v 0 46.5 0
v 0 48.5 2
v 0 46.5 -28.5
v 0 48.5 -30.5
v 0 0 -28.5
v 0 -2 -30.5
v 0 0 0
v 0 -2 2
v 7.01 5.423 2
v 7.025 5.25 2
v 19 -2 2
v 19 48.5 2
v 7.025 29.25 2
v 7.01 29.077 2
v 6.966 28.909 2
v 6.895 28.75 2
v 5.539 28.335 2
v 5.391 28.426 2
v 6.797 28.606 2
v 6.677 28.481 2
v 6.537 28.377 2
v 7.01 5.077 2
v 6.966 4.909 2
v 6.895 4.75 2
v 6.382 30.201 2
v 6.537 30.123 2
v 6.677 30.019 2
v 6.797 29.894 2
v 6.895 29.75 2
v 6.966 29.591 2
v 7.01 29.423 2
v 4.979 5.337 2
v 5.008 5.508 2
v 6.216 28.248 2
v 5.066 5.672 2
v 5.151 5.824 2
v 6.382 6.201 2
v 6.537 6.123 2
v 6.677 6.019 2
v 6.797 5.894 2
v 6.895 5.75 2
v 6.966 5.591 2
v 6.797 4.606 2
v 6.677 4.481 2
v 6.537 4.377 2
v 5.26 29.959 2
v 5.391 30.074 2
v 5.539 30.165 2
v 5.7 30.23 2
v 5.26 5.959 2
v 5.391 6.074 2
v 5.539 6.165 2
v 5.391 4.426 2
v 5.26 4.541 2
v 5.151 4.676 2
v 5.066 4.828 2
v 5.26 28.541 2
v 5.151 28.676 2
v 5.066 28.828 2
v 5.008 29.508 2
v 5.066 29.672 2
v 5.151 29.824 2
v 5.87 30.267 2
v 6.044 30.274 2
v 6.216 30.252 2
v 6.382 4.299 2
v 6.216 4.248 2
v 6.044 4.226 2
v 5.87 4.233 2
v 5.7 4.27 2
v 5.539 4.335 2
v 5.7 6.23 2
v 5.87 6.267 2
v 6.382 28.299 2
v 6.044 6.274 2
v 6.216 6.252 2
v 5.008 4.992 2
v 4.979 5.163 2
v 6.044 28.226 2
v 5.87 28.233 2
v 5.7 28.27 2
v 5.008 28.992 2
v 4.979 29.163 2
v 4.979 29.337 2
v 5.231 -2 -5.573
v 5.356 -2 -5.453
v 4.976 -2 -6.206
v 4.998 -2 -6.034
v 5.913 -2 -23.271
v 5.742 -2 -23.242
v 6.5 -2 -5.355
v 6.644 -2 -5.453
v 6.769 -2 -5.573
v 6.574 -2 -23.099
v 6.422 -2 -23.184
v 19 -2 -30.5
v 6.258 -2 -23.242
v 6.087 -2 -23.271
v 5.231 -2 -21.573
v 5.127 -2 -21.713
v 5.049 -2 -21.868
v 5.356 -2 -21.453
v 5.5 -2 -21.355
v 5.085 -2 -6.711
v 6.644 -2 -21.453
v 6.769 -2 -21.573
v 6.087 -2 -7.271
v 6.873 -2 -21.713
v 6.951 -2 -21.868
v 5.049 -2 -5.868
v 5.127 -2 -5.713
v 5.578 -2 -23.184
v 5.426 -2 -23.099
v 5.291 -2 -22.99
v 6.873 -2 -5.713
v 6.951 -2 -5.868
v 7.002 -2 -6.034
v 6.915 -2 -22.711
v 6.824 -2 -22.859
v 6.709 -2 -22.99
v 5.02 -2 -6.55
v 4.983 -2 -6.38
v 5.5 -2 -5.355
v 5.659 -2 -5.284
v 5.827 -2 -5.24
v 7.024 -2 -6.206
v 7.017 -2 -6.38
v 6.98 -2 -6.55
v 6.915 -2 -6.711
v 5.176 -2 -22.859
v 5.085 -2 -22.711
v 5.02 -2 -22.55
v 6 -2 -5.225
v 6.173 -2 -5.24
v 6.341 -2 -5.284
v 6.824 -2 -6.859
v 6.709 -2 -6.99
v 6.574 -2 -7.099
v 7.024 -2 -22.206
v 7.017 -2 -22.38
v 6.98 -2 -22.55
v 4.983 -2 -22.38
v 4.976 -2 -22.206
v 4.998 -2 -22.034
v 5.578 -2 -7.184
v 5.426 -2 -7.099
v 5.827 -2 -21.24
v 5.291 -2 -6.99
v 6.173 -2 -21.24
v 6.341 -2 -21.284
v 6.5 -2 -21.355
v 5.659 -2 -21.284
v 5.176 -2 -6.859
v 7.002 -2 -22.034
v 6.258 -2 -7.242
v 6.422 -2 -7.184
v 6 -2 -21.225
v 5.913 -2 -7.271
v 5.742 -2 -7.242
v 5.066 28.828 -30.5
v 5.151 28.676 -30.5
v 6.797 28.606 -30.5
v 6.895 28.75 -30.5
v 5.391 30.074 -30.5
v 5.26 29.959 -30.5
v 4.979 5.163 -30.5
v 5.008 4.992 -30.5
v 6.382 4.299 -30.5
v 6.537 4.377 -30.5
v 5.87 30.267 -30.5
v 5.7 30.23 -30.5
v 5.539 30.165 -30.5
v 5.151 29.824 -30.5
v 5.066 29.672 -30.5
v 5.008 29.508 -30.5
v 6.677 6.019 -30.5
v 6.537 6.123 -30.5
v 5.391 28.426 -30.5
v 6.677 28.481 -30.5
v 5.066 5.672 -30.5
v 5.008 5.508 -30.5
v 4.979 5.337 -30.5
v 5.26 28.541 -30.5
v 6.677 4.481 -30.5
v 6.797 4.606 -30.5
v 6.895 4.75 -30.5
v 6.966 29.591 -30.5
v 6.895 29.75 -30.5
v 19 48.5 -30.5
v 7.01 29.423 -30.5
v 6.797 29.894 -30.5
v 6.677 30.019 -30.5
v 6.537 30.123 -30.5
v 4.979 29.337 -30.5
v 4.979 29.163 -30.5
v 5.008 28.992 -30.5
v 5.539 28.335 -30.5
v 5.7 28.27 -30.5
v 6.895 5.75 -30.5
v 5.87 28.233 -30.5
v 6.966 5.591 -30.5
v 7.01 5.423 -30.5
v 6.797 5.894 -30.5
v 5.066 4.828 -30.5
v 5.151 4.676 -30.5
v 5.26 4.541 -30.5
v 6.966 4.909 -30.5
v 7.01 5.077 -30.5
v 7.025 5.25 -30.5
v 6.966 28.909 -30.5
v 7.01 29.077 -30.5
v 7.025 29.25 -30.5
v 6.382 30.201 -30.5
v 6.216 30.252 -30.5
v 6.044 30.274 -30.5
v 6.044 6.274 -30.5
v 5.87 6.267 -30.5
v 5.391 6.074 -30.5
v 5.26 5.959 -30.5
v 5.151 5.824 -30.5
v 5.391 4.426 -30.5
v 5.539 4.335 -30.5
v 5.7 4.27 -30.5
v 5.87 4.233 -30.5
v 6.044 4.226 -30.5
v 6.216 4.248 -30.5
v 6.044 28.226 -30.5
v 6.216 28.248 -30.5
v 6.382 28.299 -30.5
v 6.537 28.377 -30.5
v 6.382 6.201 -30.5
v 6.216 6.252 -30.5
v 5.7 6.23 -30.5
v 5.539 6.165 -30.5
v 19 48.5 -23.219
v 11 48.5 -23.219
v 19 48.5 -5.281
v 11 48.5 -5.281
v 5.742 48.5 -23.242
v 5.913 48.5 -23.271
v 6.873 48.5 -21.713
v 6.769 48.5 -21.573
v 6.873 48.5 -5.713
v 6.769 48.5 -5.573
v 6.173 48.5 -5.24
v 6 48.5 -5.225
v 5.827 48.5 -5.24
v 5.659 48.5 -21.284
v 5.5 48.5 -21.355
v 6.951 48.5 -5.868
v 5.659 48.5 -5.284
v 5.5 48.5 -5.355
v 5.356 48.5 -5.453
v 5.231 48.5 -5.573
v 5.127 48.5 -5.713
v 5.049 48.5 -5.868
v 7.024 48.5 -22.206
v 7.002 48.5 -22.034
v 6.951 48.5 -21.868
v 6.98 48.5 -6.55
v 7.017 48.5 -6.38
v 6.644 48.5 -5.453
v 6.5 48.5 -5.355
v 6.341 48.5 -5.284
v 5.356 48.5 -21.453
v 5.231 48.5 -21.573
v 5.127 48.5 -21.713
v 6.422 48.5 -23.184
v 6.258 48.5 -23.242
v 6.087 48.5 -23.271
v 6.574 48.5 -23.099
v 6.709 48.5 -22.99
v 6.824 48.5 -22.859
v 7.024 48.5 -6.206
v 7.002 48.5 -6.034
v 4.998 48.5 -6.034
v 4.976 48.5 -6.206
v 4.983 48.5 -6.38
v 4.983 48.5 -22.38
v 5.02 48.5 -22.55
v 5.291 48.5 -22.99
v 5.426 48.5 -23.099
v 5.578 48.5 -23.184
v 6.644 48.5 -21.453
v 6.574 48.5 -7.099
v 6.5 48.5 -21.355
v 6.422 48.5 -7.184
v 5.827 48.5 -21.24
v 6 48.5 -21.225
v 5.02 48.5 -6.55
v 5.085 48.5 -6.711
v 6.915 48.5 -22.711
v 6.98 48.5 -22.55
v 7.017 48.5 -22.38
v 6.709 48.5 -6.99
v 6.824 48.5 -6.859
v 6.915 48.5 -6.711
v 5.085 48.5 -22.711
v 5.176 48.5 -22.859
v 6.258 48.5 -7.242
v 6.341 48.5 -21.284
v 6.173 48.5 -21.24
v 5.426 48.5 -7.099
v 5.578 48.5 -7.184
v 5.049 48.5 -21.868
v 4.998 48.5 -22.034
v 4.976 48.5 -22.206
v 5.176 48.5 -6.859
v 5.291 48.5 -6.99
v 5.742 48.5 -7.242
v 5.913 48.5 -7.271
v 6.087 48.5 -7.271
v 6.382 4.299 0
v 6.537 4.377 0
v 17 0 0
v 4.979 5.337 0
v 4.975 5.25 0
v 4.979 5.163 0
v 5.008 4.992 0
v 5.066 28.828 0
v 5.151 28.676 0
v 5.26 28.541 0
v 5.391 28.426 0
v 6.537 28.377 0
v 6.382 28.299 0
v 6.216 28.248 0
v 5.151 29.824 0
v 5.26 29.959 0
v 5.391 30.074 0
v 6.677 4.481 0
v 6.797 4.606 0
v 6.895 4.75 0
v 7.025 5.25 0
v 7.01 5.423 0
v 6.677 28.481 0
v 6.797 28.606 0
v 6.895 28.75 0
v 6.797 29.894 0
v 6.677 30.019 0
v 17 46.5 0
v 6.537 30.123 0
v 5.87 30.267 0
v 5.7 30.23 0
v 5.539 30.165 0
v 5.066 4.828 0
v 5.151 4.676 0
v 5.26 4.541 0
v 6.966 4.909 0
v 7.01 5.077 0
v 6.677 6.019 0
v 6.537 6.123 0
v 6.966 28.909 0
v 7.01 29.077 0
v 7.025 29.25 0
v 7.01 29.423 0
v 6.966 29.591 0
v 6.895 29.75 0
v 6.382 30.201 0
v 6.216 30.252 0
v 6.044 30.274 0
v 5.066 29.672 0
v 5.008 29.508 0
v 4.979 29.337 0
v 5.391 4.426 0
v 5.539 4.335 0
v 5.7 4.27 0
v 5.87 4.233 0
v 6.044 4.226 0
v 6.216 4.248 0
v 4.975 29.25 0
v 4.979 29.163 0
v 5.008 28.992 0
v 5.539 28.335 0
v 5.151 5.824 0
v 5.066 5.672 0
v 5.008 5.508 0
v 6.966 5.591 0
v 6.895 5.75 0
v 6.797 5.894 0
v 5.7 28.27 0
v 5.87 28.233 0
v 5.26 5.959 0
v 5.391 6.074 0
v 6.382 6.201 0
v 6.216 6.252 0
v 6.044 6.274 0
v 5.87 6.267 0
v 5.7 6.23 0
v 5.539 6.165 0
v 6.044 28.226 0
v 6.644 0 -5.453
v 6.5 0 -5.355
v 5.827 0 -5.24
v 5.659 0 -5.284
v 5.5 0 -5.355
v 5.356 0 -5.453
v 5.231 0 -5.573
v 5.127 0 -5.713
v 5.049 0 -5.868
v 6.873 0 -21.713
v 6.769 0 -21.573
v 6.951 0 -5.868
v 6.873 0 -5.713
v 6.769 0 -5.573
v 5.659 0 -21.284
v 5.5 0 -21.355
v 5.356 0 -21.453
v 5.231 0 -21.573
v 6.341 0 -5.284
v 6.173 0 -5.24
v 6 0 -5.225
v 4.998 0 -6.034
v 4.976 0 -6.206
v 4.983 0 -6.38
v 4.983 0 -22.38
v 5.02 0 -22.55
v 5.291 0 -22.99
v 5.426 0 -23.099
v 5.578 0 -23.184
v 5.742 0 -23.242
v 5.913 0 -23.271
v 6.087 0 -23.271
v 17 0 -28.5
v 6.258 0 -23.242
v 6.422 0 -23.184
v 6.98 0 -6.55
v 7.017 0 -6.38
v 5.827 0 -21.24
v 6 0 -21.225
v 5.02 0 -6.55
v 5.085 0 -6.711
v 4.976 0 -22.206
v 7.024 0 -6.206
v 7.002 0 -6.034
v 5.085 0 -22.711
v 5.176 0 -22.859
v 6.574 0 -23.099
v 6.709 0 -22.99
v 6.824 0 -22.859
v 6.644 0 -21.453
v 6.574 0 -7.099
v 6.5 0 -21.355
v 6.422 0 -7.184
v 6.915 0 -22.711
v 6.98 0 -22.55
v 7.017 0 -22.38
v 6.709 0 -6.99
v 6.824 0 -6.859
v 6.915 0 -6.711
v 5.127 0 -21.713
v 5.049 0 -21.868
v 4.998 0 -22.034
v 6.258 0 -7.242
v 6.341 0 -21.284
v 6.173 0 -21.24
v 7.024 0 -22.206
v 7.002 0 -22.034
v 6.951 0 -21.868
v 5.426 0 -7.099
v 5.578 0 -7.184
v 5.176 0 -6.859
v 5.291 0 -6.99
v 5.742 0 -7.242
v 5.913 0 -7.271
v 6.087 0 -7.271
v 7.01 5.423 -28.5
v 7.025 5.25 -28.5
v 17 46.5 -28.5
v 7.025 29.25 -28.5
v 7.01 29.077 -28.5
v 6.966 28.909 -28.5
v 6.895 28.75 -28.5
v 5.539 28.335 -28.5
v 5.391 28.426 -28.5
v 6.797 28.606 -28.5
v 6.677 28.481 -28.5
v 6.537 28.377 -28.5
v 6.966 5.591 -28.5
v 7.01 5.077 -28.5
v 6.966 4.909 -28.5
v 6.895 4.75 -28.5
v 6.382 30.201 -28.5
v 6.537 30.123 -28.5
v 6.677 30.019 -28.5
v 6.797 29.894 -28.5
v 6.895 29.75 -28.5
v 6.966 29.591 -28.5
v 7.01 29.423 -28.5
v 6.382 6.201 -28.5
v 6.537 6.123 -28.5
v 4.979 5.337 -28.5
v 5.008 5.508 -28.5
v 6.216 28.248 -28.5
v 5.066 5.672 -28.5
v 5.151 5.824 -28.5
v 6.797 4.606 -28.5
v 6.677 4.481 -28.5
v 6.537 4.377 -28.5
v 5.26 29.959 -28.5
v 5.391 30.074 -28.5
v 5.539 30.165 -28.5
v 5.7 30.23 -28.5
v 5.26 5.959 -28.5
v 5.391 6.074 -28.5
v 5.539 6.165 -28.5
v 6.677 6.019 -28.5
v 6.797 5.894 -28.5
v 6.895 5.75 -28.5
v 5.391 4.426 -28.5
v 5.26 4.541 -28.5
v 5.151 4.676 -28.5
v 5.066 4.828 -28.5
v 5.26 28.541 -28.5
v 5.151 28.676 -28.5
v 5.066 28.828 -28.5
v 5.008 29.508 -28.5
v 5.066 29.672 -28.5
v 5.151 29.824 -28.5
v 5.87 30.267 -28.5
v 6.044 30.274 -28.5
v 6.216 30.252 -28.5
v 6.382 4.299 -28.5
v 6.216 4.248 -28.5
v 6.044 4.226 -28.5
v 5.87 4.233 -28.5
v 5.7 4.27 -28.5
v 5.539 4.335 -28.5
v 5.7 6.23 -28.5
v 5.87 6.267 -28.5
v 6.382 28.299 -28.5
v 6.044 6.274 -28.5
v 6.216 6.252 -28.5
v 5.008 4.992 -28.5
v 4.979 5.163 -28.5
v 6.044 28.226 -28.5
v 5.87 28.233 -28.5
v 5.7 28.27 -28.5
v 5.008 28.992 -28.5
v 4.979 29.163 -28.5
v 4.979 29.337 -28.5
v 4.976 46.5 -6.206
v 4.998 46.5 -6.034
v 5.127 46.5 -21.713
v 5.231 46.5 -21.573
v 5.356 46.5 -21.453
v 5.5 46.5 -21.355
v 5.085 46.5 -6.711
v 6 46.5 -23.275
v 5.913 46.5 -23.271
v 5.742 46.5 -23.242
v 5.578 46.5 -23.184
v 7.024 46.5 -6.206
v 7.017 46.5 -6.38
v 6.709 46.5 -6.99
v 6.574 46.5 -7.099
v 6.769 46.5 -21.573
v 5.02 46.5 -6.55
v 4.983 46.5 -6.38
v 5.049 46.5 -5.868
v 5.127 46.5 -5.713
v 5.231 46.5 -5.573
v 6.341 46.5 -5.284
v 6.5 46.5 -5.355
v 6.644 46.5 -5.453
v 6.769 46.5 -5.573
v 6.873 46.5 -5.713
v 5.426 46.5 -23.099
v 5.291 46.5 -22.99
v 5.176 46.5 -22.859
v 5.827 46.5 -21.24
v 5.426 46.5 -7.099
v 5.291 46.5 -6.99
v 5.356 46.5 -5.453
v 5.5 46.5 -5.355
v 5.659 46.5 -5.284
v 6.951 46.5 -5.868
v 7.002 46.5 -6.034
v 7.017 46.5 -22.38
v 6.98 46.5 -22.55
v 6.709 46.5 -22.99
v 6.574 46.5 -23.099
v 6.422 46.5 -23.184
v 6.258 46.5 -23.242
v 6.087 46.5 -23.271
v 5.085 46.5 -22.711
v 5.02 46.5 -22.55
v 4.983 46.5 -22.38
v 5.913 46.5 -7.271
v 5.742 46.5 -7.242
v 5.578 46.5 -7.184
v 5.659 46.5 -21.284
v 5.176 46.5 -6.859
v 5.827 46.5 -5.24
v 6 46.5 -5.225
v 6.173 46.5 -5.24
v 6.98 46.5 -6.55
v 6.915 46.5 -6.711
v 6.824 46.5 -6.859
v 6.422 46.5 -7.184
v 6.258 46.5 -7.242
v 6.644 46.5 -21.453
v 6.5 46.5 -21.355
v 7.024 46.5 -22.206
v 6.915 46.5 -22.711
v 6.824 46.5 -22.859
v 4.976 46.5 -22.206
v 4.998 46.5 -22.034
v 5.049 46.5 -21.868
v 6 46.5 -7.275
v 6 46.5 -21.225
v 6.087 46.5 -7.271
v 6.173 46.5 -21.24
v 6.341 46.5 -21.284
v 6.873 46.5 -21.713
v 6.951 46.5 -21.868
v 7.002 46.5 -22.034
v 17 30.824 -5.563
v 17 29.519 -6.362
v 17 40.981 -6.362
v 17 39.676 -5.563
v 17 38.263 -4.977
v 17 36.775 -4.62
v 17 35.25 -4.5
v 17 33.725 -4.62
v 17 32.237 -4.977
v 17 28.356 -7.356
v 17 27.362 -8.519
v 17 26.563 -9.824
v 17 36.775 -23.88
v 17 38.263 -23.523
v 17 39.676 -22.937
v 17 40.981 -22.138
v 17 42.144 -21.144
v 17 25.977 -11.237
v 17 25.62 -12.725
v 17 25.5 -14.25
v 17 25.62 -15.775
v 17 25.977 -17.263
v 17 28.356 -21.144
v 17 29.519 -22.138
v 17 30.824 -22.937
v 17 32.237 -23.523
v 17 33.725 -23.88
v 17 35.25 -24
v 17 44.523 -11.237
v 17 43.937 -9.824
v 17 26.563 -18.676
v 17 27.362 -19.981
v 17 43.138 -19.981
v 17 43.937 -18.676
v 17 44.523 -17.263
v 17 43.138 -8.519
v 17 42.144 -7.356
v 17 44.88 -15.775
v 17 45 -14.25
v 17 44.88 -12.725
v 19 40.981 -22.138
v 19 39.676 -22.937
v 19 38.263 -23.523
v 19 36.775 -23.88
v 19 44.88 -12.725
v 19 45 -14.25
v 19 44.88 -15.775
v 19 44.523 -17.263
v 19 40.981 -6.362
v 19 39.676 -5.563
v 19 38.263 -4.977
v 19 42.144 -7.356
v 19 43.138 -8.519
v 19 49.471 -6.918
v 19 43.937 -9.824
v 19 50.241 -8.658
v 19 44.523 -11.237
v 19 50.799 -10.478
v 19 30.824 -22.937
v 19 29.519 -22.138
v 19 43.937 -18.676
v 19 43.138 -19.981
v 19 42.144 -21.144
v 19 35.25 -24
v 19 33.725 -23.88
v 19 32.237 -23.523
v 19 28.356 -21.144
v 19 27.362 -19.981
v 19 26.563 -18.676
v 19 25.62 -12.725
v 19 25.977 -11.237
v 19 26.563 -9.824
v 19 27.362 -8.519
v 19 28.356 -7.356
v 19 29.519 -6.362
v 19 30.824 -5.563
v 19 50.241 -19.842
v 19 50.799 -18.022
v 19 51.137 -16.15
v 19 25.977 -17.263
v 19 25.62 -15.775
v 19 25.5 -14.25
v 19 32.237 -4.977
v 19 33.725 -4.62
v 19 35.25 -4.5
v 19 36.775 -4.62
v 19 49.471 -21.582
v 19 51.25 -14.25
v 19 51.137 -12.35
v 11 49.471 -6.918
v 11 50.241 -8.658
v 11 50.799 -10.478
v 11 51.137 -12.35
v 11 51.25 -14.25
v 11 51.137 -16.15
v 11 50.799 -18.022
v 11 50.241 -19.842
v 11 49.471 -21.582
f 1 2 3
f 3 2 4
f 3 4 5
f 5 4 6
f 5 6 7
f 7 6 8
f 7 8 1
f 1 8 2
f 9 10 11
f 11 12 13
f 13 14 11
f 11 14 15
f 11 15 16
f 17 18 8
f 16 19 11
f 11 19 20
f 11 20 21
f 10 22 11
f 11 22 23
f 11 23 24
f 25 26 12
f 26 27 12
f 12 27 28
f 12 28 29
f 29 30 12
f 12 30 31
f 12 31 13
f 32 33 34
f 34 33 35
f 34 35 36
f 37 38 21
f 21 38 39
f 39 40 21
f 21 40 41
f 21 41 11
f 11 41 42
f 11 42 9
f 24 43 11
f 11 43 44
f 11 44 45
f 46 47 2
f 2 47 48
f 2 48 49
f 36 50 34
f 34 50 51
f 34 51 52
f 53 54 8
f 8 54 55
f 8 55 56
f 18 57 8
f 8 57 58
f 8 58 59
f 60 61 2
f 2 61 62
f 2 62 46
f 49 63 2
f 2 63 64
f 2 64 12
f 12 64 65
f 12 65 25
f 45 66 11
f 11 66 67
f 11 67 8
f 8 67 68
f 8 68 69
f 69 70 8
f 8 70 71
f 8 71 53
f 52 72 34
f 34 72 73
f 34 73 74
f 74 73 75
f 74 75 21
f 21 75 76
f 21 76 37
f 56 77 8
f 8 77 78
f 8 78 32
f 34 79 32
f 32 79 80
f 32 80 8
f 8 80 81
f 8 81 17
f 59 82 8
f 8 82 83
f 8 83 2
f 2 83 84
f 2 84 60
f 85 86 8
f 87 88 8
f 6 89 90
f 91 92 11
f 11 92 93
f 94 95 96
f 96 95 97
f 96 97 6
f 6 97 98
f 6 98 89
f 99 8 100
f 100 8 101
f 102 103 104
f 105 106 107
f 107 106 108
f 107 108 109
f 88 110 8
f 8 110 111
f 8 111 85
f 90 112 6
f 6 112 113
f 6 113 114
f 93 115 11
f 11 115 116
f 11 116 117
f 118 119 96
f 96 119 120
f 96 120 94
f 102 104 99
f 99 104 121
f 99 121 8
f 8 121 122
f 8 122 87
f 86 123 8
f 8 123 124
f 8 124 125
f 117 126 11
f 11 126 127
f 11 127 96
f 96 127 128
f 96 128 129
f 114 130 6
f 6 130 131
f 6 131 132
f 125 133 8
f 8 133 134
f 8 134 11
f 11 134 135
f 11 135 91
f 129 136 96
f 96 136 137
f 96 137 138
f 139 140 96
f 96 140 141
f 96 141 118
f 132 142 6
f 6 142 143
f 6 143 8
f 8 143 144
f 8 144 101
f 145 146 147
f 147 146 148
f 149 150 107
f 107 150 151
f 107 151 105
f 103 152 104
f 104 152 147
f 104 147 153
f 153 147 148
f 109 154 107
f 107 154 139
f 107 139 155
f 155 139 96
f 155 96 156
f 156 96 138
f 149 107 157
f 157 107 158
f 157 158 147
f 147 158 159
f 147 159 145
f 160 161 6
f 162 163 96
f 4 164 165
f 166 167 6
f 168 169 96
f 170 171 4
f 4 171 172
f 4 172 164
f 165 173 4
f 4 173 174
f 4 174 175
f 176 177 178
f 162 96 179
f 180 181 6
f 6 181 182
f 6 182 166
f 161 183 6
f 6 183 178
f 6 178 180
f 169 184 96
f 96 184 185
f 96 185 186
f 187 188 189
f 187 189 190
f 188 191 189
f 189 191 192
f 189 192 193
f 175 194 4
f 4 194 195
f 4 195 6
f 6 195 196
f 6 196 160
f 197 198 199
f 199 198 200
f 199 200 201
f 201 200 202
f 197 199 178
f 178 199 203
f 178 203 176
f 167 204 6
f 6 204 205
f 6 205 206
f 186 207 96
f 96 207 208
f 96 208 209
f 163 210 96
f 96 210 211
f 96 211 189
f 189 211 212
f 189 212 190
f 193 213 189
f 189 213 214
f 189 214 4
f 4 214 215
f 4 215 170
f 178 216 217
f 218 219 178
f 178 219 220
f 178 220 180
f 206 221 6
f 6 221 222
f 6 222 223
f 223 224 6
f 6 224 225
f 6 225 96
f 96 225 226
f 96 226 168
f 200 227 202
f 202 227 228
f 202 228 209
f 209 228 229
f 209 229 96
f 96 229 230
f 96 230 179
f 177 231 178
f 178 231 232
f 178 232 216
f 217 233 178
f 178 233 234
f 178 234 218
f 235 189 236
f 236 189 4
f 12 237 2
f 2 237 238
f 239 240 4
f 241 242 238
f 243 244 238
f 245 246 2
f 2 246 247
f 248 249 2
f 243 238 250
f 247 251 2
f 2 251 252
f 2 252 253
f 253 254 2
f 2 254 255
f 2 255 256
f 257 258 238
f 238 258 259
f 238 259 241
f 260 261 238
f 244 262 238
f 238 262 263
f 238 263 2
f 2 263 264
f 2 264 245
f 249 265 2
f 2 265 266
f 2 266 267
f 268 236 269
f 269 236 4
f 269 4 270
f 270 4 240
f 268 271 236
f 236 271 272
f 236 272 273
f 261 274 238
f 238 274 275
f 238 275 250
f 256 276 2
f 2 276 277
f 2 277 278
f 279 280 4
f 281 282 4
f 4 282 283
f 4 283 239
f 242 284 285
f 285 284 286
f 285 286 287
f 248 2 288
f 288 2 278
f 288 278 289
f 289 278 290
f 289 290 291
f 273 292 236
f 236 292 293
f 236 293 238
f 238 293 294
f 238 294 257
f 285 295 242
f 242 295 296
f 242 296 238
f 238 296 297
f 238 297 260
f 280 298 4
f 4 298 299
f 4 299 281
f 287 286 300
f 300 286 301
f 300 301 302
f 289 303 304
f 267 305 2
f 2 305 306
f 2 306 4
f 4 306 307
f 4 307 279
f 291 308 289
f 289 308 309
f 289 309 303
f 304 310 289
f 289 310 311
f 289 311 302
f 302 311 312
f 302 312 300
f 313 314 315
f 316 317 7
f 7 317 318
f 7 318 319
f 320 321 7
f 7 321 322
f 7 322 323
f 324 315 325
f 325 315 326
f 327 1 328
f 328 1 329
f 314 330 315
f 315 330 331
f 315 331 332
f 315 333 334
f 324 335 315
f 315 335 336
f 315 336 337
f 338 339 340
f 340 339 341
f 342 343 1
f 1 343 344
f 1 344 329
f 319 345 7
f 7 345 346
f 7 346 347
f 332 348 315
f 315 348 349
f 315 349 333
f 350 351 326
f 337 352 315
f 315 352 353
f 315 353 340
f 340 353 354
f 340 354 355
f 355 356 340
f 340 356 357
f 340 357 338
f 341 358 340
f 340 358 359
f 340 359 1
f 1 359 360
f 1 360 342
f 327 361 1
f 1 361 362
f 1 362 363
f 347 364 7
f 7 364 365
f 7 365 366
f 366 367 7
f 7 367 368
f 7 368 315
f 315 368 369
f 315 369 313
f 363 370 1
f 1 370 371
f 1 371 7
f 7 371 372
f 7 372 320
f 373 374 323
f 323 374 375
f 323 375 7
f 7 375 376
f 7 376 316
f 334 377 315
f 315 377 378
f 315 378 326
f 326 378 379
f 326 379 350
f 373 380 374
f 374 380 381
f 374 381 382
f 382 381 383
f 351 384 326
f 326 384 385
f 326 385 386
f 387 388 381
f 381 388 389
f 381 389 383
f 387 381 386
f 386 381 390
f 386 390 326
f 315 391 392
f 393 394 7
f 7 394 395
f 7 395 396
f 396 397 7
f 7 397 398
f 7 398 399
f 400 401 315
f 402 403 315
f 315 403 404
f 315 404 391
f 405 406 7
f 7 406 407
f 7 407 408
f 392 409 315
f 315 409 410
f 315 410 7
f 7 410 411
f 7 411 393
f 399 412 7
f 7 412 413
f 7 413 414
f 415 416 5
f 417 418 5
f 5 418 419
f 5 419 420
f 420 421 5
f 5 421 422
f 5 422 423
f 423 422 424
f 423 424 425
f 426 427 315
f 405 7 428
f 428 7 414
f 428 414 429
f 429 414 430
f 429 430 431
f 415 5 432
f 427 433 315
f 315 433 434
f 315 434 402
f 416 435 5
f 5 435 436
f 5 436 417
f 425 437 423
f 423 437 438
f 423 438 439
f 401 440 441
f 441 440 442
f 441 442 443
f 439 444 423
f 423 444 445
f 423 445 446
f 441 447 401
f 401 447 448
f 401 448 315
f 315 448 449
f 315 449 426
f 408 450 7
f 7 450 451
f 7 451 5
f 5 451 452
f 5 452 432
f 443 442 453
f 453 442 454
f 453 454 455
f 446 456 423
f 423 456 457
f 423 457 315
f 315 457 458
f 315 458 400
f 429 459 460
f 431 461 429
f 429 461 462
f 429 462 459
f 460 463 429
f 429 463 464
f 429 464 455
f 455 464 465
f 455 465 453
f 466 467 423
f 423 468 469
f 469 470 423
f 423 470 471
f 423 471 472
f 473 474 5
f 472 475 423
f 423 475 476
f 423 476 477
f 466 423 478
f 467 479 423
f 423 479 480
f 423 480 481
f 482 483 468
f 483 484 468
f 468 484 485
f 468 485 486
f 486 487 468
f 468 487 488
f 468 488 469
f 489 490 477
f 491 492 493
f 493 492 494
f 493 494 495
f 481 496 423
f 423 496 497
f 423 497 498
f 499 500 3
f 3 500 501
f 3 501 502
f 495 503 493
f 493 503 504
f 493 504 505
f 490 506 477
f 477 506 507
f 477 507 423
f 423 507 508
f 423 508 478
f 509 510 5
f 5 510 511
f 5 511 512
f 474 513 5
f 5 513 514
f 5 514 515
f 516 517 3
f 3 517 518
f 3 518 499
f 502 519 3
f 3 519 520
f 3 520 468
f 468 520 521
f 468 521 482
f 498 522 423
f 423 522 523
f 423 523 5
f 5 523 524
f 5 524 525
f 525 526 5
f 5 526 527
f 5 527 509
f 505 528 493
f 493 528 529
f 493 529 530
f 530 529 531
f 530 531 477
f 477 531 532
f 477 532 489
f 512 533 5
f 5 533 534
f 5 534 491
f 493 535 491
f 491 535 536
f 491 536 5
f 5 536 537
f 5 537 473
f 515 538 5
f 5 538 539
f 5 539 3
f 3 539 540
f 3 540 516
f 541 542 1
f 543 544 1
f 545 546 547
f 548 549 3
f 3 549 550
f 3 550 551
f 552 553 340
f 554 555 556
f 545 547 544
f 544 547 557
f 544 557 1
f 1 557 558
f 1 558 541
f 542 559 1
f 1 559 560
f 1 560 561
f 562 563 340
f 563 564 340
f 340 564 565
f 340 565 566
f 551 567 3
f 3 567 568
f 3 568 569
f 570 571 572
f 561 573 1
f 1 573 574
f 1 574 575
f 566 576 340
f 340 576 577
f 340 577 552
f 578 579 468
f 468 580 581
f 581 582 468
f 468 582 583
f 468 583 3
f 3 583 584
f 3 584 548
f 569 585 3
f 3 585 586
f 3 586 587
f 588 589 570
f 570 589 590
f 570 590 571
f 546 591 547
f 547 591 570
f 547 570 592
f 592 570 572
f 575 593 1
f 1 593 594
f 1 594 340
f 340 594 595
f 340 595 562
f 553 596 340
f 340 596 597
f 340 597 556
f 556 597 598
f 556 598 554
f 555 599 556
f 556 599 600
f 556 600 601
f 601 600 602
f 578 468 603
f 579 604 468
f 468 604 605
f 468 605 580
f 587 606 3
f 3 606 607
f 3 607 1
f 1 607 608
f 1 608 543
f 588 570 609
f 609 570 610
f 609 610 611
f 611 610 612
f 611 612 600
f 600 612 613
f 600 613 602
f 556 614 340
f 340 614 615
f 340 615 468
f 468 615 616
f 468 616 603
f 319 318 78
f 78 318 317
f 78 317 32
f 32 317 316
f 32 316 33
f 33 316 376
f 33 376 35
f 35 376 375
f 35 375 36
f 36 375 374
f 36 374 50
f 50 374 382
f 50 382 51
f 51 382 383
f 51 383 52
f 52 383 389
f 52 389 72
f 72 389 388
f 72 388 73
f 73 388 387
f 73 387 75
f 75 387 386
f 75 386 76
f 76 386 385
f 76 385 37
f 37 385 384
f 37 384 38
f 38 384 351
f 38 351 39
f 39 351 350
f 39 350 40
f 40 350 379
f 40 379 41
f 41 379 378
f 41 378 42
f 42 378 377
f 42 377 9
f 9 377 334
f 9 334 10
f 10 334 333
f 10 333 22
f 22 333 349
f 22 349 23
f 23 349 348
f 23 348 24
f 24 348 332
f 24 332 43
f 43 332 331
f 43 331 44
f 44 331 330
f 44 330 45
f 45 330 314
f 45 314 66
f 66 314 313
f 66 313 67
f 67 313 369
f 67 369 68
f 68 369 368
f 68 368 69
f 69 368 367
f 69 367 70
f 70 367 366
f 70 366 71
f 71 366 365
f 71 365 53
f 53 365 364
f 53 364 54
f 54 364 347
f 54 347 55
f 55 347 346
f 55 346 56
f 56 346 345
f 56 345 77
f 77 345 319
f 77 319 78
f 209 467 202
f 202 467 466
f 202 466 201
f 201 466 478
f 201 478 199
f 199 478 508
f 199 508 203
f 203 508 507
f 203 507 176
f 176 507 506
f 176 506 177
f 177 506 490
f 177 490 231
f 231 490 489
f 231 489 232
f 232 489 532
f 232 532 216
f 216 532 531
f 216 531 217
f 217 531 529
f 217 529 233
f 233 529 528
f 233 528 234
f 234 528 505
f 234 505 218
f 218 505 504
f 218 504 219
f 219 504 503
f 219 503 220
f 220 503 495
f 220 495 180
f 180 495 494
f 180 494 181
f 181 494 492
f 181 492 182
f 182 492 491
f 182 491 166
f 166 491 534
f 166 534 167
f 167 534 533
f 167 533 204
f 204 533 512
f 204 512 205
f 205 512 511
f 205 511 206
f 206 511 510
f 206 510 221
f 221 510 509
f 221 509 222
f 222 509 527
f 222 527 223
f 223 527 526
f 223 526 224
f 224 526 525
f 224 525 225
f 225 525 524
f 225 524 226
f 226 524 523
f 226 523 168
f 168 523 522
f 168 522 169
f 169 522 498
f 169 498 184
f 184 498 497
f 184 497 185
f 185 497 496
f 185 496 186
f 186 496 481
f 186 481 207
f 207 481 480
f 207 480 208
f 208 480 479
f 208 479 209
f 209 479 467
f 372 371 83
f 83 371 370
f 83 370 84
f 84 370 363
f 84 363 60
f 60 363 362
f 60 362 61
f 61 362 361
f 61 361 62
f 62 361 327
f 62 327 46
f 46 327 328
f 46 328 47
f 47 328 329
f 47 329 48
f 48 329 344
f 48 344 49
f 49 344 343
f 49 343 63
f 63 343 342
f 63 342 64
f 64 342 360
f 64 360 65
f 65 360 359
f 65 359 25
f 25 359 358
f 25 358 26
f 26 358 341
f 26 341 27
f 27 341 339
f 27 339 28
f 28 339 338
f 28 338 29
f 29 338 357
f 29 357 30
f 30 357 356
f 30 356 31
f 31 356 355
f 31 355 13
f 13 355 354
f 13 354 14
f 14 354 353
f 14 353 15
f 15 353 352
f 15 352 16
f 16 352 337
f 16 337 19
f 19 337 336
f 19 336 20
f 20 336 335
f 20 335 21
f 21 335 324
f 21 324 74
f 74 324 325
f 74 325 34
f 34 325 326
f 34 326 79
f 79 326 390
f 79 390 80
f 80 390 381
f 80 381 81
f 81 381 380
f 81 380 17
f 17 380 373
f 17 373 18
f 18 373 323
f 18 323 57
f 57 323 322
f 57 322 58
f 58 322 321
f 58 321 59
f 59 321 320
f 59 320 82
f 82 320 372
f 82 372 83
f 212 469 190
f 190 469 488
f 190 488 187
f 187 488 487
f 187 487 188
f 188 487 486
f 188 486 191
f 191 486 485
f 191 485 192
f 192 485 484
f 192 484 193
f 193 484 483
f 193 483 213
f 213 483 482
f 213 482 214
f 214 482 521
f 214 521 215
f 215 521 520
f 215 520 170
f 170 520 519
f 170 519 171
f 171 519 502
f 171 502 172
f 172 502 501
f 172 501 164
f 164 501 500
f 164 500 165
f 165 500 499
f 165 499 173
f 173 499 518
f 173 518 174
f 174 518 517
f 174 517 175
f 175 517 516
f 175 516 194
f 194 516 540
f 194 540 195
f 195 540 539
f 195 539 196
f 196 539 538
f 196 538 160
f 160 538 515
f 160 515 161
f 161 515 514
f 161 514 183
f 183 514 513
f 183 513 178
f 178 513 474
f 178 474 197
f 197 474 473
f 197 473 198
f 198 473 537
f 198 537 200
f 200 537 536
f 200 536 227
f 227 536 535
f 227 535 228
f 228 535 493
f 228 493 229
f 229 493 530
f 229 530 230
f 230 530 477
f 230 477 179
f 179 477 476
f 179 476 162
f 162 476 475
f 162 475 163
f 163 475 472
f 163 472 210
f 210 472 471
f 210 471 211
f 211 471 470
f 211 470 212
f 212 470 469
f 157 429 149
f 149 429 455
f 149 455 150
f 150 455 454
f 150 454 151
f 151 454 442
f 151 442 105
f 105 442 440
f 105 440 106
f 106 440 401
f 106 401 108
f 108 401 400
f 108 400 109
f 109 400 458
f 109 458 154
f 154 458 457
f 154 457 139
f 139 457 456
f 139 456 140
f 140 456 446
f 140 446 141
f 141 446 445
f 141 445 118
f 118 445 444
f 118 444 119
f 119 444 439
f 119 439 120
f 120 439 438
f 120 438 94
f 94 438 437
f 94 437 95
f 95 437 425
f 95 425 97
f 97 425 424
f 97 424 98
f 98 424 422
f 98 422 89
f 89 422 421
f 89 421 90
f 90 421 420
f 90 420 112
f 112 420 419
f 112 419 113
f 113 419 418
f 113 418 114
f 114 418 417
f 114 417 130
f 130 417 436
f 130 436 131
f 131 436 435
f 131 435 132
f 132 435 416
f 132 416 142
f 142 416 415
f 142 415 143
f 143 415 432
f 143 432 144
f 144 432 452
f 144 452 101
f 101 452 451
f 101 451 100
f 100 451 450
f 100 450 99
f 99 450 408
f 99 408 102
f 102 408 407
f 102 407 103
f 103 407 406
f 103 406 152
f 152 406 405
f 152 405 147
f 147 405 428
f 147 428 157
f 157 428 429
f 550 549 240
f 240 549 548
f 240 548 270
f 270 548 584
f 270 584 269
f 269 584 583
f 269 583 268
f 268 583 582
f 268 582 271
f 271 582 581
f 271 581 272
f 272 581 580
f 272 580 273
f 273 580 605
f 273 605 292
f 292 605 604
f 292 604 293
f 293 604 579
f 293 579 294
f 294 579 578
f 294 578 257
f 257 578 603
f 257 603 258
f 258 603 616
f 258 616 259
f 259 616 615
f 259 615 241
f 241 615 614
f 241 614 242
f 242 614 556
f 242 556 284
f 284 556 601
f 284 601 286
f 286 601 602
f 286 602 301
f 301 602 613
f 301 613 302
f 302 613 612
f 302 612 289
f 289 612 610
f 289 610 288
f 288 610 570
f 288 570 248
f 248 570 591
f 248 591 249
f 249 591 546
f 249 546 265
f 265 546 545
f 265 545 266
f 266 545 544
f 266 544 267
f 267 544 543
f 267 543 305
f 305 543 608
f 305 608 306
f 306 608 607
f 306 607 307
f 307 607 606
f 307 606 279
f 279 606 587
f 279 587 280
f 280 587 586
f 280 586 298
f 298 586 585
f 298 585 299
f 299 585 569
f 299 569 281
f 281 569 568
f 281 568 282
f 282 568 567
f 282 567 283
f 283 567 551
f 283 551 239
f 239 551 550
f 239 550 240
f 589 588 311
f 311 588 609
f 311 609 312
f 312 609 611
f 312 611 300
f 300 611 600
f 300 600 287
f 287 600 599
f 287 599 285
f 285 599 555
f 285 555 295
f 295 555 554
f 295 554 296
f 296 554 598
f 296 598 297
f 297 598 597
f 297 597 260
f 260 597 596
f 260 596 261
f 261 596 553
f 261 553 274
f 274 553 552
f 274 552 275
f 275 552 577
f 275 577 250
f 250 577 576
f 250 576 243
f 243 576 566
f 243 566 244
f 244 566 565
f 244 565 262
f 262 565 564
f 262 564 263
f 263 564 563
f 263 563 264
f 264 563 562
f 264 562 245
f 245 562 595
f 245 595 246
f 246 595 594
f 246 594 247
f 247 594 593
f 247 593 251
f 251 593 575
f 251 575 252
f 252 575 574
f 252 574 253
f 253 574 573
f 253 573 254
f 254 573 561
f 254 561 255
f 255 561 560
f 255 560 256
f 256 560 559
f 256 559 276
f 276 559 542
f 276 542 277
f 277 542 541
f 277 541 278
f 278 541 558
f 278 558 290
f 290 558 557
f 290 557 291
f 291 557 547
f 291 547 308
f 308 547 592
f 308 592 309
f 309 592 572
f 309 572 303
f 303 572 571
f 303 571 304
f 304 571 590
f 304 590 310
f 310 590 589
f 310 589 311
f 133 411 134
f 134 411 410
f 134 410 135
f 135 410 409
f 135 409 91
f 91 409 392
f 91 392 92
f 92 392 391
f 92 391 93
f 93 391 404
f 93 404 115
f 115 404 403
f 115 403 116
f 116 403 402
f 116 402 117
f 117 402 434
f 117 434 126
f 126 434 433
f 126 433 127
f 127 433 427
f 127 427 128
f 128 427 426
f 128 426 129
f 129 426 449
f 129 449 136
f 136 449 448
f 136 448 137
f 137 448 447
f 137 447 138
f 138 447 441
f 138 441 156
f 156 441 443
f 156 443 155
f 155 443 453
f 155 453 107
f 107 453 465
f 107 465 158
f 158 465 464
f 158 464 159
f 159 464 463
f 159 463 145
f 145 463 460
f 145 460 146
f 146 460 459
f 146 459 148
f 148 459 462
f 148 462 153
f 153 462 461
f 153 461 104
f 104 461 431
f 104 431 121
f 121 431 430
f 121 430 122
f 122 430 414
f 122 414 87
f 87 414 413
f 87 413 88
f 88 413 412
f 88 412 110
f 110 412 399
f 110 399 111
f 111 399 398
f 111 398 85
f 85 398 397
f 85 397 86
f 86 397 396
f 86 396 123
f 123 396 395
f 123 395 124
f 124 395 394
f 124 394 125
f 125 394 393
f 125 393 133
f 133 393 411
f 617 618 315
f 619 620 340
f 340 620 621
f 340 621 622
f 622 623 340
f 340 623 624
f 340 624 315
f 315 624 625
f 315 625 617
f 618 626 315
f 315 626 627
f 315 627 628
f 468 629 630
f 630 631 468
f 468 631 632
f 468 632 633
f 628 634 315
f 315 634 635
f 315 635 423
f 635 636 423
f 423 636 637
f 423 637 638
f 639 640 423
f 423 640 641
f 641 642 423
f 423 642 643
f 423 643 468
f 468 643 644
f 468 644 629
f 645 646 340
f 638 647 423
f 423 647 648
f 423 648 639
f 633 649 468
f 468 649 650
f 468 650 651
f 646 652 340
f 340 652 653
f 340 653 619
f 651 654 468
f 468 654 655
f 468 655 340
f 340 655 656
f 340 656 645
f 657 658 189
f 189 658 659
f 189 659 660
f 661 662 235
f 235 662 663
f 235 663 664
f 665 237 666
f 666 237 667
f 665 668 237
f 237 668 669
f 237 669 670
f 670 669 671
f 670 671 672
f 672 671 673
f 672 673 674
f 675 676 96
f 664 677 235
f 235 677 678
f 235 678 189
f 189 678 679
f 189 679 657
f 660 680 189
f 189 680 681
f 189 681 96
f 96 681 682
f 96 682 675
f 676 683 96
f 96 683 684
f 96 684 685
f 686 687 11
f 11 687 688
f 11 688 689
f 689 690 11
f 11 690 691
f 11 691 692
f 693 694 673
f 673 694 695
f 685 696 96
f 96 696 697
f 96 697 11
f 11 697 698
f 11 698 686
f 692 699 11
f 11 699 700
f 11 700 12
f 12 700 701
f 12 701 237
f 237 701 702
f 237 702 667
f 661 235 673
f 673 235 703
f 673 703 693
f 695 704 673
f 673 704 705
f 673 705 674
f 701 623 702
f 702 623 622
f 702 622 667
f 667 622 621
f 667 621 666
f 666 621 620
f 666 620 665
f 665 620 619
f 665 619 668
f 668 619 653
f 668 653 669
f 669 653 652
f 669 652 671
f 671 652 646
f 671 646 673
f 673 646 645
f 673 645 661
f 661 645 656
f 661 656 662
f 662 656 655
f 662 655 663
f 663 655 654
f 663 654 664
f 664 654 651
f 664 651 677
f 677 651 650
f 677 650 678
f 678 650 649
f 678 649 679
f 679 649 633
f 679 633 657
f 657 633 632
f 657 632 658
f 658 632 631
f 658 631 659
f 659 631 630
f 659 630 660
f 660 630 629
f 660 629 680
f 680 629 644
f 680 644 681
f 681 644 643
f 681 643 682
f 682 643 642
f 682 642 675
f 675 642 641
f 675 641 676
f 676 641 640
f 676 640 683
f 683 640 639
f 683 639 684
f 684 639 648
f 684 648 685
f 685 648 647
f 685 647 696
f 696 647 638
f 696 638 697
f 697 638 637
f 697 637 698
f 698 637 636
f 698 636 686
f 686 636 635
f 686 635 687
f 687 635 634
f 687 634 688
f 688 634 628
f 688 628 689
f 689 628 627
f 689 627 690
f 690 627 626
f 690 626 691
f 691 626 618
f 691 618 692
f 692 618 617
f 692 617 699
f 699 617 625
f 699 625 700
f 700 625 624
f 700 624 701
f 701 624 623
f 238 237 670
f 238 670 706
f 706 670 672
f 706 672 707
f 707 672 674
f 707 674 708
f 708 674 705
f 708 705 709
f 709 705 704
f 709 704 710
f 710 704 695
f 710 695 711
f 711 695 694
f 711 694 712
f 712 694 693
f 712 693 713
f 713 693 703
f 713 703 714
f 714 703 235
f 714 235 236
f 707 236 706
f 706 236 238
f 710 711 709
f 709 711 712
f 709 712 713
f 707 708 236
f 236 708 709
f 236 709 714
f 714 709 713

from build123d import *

# Parameters (mm, degrees)
SKETCH1_W                 = 32.5
SKETCH1_H                 = 50.5
SKETCH1_W_2               = 28.5
SKETCH1_H_2               = 46.5
EXTRUDE_THIN1_DEPTH       = 17
TAP_DRILL_FOR_M2_5_TAP1_D = 2.05
TAP_DRILL_FOR_M2_5_TAP2_D = 2.05
SKETCH7_W                 = 32.5
SKETCH7_H                 = 50.5
BOSS_EXTRUDE1_DEPTH       = 2
SKETCH9_R                 = 9.75
CUT_EXTRUDE1_DEPTH        = 2
BOSS_EXTRUDE2_DEPTH       = 8


with BuildPart() as part:
    # Sketch1 → Extrude-Thin1 (new body)
    with BuildSketch(Plane(origin=(0, 0, 0), x_dir=(0, 0, -1), z_dir=(1, 0, 0))):
        with Locations((14.25, 23.25)):
            Rectangle(SKETCH1_W, SKETCH1_H)
        with Locations((14.25, 23.25)):
            Rectangle(SKETCH1_W_2, SKETCH1_H_2, mode=Mode.SUBTRACT)
    extrude(amount=EXTRUDE_THIN1_DEPTH)

    # Tap Drill for M2.5 Tap1 (through all)
    with Locations(Plane(origin=(6, 29.25, 2), x_dir=(1, 0, 0), z_dir=(0, 0, 1))):
        with Locations((0, 0), (0, -24)):
            Hole(TAP_DRILL_FOR_M2_5_TAP1_D / 2)

    # Tap Drill for M2.5 Tap2 (through all)
    with Locations(Plane(origin=(6, 48.5, -6.25), x_dir=(0, 0, 1), z_dir=(0, 1, 0))):
        with Locations((0, 0), (-16, 0)):
            Hole(TAP_DRILL_FOR_M2_5_TAP2_D / 2)

    # Sketch7 → Boss-Extrude1 (add)
    with BuildSketch(Plane(origin=(17, 0, 0), x_dir=(0, 0, -1), z_dir=(1, 0, 0))):
        with Locations((14.25, 23.25)):
            Rectangle(SKETCH7_W, SKETCH7_H)
    extrude(amount=BOSS_EXTRUDE1_DEPTH)

    # Sketch9 → Cut-Extrude1 (cut)
    with BuildSketch(Plane.ZY.offset(-17)):
        with Locations((-14.25, 35.25)):
            Circle(SKETCH9_R)
    extrude(amount=-CUT_EXTRUDE1_DEPTH, mode=Mode.SUBTRACT)

    # Sketch10 → Boss-Extrude2 (add)
    with BuildSketch(Plane(origin=(19, 0, 0), x_dir=(0, 0, -1), z_dir=(1, 0, 0))):
        with BuildLine():
            Line((5.281304443, 48.5), (23.218695557, 48.5))
            ThreePointArc((23.218695557, 48.5), (14.25, 51.25), (5.281304443, 48.5))
        make_face()
    extrude(amount=-BOSS_EXTRUDE2_DEPTH)


solid = part.part
